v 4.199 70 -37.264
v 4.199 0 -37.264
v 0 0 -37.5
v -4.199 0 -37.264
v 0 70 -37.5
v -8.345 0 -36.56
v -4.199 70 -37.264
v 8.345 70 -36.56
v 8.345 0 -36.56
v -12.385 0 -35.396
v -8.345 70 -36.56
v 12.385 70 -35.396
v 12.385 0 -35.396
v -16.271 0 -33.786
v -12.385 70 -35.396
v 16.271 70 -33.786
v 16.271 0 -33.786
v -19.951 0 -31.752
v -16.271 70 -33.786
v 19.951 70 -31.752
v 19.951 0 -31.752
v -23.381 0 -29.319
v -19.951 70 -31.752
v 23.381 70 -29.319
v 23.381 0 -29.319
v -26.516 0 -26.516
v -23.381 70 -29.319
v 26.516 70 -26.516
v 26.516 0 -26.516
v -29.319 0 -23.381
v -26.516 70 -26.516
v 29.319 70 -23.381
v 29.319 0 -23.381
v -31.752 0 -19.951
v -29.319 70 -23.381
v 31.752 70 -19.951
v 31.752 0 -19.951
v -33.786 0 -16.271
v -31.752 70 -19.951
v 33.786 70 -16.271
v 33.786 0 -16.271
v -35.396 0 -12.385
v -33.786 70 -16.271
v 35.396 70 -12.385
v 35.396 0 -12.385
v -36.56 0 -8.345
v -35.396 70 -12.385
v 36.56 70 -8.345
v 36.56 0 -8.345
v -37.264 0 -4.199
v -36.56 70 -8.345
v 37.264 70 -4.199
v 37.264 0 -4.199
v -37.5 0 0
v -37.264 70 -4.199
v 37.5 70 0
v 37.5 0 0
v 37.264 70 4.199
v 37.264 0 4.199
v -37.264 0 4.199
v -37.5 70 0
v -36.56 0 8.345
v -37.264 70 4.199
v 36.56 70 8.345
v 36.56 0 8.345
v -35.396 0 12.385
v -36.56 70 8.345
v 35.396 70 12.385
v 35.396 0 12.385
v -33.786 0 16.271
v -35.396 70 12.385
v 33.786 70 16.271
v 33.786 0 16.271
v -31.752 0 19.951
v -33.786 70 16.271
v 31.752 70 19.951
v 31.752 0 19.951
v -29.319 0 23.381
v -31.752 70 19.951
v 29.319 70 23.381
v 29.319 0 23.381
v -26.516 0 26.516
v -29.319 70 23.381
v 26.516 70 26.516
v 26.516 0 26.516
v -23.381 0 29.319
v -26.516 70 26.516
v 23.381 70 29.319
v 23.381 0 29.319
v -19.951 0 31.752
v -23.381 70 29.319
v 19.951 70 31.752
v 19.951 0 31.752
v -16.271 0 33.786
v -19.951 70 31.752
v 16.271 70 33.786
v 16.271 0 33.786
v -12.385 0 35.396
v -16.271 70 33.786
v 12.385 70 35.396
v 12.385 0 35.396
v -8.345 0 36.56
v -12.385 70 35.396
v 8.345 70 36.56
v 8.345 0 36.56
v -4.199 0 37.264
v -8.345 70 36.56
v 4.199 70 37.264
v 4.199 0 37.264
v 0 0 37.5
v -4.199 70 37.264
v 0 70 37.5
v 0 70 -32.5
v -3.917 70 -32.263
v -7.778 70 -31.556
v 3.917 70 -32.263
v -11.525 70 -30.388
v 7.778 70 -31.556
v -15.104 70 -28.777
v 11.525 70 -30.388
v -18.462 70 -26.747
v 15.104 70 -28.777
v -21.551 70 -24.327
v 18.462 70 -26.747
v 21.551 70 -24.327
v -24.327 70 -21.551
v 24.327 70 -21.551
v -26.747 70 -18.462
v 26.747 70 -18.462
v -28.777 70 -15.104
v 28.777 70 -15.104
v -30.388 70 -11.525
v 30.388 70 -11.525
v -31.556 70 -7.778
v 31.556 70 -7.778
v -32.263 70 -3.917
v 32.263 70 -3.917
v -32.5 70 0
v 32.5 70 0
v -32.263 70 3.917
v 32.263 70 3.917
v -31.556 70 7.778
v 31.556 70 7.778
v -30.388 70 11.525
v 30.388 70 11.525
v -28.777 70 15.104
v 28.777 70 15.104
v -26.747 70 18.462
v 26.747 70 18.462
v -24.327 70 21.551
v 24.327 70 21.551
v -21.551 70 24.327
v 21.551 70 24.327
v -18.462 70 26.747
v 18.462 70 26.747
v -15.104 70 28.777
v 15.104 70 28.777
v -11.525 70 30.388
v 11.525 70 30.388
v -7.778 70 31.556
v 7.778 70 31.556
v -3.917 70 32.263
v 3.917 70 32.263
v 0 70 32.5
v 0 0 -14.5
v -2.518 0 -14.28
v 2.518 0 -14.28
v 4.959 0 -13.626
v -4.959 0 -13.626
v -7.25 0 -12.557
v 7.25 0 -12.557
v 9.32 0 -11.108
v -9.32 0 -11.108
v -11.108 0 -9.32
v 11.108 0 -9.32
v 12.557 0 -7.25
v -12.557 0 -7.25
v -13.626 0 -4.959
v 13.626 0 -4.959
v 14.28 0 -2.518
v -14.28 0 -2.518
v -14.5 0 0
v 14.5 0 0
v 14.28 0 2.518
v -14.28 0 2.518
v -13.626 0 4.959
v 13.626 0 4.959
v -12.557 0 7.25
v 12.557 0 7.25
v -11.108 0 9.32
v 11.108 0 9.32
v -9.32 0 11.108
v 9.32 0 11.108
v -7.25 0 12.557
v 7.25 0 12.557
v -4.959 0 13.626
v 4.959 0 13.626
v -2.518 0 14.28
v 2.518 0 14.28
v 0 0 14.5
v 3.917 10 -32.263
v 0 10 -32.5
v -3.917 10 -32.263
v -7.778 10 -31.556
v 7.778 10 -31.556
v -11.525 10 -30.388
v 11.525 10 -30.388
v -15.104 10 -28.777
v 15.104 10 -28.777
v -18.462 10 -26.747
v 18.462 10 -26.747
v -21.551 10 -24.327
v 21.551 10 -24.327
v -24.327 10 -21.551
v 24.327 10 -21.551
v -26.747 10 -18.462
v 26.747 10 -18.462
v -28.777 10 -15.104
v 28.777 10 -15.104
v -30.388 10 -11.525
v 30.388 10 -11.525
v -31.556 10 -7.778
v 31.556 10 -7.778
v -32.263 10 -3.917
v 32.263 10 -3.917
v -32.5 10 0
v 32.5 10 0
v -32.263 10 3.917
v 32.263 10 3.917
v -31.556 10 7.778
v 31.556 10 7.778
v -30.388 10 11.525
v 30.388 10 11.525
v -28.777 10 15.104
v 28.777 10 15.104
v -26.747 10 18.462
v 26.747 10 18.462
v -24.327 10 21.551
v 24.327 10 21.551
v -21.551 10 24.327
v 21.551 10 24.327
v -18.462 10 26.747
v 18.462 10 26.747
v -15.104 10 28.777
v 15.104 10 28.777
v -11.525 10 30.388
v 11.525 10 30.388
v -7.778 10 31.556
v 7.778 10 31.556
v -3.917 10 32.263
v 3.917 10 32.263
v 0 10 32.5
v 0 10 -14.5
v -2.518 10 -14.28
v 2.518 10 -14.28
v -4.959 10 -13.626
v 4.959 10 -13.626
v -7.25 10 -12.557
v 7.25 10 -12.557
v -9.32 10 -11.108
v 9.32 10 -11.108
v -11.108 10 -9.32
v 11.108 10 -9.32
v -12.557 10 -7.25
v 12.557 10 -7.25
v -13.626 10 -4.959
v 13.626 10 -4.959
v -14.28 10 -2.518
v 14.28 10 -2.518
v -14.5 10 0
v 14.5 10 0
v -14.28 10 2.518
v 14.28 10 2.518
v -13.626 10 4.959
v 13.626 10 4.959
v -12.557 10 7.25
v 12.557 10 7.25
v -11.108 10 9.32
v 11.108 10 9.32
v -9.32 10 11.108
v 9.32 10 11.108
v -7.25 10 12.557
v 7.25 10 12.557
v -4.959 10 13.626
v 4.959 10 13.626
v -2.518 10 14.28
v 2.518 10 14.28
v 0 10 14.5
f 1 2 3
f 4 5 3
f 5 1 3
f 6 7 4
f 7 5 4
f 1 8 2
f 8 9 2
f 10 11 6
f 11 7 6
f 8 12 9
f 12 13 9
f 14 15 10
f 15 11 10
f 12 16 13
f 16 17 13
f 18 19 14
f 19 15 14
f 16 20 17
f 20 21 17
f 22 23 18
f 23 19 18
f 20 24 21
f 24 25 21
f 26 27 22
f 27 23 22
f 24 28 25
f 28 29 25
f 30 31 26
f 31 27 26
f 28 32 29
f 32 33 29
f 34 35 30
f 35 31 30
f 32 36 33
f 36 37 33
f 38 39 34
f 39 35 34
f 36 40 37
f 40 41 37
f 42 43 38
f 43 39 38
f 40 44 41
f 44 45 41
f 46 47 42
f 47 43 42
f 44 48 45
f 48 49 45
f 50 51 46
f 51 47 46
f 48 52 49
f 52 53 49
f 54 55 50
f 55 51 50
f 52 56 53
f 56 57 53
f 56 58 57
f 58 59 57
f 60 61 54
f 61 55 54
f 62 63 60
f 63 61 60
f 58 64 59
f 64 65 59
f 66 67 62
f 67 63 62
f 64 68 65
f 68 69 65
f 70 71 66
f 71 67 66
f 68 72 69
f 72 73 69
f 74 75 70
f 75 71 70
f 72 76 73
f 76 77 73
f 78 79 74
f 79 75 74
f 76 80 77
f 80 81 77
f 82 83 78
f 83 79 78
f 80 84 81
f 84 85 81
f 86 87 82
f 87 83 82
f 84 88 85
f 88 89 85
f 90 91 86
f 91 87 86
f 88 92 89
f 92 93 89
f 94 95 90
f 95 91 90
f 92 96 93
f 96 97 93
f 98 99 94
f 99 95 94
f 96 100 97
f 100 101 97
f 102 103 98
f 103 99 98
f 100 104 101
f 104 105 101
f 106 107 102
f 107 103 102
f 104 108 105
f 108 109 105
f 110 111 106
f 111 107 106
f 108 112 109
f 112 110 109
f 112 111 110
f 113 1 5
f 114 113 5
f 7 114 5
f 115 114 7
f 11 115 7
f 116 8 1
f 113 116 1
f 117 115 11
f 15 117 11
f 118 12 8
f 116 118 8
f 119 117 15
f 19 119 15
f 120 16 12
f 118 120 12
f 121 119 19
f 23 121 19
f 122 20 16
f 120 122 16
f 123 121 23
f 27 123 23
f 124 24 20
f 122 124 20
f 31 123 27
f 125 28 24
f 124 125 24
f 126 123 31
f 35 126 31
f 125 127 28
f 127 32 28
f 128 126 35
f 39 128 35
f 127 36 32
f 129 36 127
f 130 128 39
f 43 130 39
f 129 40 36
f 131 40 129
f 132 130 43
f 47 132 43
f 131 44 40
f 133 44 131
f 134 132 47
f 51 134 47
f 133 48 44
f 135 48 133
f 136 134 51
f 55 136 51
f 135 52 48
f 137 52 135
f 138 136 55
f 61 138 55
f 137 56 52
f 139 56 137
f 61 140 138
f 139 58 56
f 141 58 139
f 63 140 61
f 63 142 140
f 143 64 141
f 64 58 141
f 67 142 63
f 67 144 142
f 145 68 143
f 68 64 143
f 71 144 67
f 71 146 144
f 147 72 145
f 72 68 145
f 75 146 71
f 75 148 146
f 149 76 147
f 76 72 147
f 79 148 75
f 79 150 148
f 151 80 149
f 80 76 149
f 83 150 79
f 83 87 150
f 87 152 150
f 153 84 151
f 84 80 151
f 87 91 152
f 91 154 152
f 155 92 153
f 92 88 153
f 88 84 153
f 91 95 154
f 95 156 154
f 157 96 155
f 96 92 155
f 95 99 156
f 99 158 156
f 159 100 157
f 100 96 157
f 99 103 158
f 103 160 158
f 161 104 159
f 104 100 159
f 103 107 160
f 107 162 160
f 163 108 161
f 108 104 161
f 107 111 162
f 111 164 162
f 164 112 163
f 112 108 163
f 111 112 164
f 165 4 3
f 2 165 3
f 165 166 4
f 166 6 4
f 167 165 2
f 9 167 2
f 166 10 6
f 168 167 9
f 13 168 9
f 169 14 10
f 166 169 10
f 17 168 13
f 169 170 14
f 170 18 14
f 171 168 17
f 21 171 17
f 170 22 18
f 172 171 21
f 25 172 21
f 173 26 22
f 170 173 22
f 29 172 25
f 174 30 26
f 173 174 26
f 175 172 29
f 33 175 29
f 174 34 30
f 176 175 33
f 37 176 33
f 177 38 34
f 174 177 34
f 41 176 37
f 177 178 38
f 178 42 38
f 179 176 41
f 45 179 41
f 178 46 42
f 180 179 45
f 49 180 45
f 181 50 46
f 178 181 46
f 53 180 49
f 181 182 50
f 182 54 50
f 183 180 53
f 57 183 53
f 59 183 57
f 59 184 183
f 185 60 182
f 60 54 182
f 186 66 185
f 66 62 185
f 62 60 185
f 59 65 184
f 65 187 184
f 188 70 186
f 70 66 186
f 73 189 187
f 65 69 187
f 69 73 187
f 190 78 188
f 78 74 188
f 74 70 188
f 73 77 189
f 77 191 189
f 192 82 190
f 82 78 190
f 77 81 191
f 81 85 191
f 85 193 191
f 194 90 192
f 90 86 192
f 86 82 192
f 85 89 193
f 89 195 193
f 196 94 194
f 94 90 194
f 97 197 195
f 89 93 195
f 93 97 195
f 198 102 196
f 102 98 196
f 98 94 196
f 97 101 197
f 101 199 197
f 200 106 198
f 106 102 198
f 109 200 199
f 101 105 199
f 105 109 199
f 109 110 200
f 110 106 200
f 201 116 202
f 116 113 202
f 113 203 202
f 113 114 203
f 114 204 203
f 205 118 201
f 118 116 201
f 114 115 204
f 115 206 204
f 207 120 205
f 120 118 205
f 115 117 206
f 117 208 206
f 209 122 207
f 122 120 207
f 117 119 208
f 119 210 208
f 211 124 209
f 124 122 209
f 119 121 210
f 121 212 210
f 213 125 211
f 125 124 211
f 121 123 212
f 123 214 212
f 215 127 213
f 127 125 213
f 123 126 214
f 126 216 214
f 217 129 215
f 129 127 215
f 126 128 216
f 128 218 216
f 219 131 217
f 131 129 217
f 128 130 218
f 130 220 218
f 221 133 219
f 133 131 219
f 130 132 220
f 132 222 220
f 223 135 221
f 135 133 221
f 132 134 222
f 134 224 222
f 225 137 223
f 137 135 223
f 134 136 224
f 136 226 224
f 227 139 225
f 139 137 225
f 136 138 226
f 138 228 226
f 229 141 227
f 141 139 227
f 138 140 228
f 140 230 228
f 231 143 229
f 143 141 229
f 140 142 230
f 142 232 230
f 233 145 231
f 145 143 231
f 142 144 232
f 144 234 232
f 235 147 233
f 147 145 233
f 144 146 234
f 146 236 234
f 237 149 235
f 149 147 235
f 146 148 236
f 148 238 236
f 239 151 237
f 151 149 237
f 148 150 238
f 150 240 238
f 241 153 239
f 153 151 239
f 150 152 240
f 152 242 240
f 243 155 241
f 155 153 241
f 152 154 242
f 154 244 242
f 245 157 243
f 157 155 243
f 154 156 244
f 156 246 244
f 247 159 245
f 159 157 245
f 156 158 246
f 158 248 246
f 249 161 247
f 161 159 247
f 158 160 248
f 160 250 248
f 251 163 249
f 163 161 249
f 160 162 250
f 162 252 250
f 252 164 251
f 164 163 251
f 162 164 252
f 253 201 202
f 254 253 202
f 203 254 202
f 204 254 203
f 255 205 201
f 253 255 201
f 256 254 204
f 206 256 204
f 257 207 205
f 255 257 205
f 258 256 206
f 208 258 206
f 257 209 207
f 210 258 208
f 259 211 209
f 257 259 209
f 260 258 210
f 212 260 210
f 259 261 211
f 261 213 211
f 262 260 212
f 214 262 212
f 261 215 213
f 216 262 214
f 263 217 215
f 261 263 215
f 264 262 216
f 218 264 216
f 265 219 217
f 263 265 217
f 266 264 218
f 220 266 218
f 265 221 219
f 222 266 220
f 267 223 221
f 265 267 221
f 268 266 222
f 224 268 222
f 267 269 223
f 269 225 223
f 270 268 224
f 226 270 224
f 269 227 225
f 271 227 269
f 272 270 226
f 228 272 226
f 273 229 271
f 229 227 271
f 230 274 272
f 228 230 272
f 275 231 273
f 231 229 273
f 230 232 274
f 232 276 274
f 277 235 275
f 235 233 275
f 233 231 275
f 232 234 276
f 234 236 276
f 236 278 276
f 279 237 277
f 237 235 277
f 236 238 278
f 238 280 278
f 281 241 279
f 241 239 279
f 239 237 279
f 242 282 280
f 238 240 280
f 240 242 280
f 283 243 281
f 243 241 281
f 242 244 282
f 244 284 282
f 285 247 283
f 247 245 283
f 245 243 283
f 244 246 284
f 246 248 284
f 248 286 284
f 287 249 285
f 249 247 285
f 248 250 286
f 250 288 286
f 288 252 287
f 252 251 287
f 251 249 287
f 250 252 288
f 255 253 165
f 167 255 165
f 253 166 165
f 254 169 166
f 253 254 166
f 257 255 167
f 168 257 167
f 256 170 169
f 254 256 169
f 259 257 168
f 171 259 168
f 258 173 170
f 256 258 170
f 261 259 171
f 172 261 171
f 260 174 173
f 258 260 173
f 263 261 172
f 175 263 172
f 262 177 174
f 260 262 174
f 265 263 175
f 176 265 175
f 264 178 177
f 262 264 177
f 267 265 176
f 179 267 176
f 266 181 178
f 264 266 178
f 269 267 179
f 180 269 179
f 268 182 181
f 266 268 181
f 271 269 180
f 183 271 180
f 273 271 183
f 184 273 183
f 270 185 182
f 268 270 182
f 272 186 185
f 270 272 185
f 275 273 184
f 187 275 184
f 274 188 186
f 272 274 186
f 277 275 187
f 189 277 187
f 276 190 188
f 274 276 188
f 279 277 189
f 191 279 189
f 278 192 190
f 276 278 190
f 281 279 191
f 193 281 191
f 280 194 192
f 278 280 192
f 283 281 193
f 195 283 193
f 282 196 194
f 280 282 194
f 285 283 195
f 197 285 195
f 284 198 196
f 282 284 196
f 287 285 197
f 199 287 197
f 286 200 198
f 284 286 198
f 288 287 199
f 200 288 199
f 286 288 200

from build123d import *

# Parameters (mm, degrees)
SKETCH_1_R          = 37.5
EXTRUDE_1_DEPTH     = 70
SKETCH_2_R          = 32.5
CUT_EXTRUDE_1_DEPTH = 60
SKETCH_3_R          = 14.5
CUT_EXTRUDE_2_DEPTH = 40


with BuildPart() as part:
    # 草图1 → 凸台-拉伸1 (new body)
    with BuildSketch(Plane(origin=(0, 0, 0), x_dir=(1, 0, 0), z_dir=(0, 1, 0))):
        with Locations(Location((0, 0, 0), (0, 0, 270))):
            Circle(SKETCH_1_R)
    extrude(amount=EXTRUDE_1_DEPTH)

    # 草图2 → 切除-拉伸1 (cut)
    with BuildSketch(Plane(origin=(0, 70, 0), x_dir=(1, 0, 0), z_dir=(0, 1, 0))):
        with Locations(Location((0, 0, 0), (0, 0, 270))):
            Circle(SKETCH_2_R)
    extrude(amount=-CUT_EXTRUDE_1_DEPTH, mode=Mode.SUBTRACT)

    # 草图3 → 切除-拉伸2 (cut)
    with BuildSketch(Plane.XZ):
        with Locations(Location((0, 0, 0), (0, 0, 270))):
            Circle(SKETCH_3_R)
    extrude(amount=-CUT_EXTRUDE_2_DEPTH, mode=Mode.SUBTRACT)


solid = part.part
